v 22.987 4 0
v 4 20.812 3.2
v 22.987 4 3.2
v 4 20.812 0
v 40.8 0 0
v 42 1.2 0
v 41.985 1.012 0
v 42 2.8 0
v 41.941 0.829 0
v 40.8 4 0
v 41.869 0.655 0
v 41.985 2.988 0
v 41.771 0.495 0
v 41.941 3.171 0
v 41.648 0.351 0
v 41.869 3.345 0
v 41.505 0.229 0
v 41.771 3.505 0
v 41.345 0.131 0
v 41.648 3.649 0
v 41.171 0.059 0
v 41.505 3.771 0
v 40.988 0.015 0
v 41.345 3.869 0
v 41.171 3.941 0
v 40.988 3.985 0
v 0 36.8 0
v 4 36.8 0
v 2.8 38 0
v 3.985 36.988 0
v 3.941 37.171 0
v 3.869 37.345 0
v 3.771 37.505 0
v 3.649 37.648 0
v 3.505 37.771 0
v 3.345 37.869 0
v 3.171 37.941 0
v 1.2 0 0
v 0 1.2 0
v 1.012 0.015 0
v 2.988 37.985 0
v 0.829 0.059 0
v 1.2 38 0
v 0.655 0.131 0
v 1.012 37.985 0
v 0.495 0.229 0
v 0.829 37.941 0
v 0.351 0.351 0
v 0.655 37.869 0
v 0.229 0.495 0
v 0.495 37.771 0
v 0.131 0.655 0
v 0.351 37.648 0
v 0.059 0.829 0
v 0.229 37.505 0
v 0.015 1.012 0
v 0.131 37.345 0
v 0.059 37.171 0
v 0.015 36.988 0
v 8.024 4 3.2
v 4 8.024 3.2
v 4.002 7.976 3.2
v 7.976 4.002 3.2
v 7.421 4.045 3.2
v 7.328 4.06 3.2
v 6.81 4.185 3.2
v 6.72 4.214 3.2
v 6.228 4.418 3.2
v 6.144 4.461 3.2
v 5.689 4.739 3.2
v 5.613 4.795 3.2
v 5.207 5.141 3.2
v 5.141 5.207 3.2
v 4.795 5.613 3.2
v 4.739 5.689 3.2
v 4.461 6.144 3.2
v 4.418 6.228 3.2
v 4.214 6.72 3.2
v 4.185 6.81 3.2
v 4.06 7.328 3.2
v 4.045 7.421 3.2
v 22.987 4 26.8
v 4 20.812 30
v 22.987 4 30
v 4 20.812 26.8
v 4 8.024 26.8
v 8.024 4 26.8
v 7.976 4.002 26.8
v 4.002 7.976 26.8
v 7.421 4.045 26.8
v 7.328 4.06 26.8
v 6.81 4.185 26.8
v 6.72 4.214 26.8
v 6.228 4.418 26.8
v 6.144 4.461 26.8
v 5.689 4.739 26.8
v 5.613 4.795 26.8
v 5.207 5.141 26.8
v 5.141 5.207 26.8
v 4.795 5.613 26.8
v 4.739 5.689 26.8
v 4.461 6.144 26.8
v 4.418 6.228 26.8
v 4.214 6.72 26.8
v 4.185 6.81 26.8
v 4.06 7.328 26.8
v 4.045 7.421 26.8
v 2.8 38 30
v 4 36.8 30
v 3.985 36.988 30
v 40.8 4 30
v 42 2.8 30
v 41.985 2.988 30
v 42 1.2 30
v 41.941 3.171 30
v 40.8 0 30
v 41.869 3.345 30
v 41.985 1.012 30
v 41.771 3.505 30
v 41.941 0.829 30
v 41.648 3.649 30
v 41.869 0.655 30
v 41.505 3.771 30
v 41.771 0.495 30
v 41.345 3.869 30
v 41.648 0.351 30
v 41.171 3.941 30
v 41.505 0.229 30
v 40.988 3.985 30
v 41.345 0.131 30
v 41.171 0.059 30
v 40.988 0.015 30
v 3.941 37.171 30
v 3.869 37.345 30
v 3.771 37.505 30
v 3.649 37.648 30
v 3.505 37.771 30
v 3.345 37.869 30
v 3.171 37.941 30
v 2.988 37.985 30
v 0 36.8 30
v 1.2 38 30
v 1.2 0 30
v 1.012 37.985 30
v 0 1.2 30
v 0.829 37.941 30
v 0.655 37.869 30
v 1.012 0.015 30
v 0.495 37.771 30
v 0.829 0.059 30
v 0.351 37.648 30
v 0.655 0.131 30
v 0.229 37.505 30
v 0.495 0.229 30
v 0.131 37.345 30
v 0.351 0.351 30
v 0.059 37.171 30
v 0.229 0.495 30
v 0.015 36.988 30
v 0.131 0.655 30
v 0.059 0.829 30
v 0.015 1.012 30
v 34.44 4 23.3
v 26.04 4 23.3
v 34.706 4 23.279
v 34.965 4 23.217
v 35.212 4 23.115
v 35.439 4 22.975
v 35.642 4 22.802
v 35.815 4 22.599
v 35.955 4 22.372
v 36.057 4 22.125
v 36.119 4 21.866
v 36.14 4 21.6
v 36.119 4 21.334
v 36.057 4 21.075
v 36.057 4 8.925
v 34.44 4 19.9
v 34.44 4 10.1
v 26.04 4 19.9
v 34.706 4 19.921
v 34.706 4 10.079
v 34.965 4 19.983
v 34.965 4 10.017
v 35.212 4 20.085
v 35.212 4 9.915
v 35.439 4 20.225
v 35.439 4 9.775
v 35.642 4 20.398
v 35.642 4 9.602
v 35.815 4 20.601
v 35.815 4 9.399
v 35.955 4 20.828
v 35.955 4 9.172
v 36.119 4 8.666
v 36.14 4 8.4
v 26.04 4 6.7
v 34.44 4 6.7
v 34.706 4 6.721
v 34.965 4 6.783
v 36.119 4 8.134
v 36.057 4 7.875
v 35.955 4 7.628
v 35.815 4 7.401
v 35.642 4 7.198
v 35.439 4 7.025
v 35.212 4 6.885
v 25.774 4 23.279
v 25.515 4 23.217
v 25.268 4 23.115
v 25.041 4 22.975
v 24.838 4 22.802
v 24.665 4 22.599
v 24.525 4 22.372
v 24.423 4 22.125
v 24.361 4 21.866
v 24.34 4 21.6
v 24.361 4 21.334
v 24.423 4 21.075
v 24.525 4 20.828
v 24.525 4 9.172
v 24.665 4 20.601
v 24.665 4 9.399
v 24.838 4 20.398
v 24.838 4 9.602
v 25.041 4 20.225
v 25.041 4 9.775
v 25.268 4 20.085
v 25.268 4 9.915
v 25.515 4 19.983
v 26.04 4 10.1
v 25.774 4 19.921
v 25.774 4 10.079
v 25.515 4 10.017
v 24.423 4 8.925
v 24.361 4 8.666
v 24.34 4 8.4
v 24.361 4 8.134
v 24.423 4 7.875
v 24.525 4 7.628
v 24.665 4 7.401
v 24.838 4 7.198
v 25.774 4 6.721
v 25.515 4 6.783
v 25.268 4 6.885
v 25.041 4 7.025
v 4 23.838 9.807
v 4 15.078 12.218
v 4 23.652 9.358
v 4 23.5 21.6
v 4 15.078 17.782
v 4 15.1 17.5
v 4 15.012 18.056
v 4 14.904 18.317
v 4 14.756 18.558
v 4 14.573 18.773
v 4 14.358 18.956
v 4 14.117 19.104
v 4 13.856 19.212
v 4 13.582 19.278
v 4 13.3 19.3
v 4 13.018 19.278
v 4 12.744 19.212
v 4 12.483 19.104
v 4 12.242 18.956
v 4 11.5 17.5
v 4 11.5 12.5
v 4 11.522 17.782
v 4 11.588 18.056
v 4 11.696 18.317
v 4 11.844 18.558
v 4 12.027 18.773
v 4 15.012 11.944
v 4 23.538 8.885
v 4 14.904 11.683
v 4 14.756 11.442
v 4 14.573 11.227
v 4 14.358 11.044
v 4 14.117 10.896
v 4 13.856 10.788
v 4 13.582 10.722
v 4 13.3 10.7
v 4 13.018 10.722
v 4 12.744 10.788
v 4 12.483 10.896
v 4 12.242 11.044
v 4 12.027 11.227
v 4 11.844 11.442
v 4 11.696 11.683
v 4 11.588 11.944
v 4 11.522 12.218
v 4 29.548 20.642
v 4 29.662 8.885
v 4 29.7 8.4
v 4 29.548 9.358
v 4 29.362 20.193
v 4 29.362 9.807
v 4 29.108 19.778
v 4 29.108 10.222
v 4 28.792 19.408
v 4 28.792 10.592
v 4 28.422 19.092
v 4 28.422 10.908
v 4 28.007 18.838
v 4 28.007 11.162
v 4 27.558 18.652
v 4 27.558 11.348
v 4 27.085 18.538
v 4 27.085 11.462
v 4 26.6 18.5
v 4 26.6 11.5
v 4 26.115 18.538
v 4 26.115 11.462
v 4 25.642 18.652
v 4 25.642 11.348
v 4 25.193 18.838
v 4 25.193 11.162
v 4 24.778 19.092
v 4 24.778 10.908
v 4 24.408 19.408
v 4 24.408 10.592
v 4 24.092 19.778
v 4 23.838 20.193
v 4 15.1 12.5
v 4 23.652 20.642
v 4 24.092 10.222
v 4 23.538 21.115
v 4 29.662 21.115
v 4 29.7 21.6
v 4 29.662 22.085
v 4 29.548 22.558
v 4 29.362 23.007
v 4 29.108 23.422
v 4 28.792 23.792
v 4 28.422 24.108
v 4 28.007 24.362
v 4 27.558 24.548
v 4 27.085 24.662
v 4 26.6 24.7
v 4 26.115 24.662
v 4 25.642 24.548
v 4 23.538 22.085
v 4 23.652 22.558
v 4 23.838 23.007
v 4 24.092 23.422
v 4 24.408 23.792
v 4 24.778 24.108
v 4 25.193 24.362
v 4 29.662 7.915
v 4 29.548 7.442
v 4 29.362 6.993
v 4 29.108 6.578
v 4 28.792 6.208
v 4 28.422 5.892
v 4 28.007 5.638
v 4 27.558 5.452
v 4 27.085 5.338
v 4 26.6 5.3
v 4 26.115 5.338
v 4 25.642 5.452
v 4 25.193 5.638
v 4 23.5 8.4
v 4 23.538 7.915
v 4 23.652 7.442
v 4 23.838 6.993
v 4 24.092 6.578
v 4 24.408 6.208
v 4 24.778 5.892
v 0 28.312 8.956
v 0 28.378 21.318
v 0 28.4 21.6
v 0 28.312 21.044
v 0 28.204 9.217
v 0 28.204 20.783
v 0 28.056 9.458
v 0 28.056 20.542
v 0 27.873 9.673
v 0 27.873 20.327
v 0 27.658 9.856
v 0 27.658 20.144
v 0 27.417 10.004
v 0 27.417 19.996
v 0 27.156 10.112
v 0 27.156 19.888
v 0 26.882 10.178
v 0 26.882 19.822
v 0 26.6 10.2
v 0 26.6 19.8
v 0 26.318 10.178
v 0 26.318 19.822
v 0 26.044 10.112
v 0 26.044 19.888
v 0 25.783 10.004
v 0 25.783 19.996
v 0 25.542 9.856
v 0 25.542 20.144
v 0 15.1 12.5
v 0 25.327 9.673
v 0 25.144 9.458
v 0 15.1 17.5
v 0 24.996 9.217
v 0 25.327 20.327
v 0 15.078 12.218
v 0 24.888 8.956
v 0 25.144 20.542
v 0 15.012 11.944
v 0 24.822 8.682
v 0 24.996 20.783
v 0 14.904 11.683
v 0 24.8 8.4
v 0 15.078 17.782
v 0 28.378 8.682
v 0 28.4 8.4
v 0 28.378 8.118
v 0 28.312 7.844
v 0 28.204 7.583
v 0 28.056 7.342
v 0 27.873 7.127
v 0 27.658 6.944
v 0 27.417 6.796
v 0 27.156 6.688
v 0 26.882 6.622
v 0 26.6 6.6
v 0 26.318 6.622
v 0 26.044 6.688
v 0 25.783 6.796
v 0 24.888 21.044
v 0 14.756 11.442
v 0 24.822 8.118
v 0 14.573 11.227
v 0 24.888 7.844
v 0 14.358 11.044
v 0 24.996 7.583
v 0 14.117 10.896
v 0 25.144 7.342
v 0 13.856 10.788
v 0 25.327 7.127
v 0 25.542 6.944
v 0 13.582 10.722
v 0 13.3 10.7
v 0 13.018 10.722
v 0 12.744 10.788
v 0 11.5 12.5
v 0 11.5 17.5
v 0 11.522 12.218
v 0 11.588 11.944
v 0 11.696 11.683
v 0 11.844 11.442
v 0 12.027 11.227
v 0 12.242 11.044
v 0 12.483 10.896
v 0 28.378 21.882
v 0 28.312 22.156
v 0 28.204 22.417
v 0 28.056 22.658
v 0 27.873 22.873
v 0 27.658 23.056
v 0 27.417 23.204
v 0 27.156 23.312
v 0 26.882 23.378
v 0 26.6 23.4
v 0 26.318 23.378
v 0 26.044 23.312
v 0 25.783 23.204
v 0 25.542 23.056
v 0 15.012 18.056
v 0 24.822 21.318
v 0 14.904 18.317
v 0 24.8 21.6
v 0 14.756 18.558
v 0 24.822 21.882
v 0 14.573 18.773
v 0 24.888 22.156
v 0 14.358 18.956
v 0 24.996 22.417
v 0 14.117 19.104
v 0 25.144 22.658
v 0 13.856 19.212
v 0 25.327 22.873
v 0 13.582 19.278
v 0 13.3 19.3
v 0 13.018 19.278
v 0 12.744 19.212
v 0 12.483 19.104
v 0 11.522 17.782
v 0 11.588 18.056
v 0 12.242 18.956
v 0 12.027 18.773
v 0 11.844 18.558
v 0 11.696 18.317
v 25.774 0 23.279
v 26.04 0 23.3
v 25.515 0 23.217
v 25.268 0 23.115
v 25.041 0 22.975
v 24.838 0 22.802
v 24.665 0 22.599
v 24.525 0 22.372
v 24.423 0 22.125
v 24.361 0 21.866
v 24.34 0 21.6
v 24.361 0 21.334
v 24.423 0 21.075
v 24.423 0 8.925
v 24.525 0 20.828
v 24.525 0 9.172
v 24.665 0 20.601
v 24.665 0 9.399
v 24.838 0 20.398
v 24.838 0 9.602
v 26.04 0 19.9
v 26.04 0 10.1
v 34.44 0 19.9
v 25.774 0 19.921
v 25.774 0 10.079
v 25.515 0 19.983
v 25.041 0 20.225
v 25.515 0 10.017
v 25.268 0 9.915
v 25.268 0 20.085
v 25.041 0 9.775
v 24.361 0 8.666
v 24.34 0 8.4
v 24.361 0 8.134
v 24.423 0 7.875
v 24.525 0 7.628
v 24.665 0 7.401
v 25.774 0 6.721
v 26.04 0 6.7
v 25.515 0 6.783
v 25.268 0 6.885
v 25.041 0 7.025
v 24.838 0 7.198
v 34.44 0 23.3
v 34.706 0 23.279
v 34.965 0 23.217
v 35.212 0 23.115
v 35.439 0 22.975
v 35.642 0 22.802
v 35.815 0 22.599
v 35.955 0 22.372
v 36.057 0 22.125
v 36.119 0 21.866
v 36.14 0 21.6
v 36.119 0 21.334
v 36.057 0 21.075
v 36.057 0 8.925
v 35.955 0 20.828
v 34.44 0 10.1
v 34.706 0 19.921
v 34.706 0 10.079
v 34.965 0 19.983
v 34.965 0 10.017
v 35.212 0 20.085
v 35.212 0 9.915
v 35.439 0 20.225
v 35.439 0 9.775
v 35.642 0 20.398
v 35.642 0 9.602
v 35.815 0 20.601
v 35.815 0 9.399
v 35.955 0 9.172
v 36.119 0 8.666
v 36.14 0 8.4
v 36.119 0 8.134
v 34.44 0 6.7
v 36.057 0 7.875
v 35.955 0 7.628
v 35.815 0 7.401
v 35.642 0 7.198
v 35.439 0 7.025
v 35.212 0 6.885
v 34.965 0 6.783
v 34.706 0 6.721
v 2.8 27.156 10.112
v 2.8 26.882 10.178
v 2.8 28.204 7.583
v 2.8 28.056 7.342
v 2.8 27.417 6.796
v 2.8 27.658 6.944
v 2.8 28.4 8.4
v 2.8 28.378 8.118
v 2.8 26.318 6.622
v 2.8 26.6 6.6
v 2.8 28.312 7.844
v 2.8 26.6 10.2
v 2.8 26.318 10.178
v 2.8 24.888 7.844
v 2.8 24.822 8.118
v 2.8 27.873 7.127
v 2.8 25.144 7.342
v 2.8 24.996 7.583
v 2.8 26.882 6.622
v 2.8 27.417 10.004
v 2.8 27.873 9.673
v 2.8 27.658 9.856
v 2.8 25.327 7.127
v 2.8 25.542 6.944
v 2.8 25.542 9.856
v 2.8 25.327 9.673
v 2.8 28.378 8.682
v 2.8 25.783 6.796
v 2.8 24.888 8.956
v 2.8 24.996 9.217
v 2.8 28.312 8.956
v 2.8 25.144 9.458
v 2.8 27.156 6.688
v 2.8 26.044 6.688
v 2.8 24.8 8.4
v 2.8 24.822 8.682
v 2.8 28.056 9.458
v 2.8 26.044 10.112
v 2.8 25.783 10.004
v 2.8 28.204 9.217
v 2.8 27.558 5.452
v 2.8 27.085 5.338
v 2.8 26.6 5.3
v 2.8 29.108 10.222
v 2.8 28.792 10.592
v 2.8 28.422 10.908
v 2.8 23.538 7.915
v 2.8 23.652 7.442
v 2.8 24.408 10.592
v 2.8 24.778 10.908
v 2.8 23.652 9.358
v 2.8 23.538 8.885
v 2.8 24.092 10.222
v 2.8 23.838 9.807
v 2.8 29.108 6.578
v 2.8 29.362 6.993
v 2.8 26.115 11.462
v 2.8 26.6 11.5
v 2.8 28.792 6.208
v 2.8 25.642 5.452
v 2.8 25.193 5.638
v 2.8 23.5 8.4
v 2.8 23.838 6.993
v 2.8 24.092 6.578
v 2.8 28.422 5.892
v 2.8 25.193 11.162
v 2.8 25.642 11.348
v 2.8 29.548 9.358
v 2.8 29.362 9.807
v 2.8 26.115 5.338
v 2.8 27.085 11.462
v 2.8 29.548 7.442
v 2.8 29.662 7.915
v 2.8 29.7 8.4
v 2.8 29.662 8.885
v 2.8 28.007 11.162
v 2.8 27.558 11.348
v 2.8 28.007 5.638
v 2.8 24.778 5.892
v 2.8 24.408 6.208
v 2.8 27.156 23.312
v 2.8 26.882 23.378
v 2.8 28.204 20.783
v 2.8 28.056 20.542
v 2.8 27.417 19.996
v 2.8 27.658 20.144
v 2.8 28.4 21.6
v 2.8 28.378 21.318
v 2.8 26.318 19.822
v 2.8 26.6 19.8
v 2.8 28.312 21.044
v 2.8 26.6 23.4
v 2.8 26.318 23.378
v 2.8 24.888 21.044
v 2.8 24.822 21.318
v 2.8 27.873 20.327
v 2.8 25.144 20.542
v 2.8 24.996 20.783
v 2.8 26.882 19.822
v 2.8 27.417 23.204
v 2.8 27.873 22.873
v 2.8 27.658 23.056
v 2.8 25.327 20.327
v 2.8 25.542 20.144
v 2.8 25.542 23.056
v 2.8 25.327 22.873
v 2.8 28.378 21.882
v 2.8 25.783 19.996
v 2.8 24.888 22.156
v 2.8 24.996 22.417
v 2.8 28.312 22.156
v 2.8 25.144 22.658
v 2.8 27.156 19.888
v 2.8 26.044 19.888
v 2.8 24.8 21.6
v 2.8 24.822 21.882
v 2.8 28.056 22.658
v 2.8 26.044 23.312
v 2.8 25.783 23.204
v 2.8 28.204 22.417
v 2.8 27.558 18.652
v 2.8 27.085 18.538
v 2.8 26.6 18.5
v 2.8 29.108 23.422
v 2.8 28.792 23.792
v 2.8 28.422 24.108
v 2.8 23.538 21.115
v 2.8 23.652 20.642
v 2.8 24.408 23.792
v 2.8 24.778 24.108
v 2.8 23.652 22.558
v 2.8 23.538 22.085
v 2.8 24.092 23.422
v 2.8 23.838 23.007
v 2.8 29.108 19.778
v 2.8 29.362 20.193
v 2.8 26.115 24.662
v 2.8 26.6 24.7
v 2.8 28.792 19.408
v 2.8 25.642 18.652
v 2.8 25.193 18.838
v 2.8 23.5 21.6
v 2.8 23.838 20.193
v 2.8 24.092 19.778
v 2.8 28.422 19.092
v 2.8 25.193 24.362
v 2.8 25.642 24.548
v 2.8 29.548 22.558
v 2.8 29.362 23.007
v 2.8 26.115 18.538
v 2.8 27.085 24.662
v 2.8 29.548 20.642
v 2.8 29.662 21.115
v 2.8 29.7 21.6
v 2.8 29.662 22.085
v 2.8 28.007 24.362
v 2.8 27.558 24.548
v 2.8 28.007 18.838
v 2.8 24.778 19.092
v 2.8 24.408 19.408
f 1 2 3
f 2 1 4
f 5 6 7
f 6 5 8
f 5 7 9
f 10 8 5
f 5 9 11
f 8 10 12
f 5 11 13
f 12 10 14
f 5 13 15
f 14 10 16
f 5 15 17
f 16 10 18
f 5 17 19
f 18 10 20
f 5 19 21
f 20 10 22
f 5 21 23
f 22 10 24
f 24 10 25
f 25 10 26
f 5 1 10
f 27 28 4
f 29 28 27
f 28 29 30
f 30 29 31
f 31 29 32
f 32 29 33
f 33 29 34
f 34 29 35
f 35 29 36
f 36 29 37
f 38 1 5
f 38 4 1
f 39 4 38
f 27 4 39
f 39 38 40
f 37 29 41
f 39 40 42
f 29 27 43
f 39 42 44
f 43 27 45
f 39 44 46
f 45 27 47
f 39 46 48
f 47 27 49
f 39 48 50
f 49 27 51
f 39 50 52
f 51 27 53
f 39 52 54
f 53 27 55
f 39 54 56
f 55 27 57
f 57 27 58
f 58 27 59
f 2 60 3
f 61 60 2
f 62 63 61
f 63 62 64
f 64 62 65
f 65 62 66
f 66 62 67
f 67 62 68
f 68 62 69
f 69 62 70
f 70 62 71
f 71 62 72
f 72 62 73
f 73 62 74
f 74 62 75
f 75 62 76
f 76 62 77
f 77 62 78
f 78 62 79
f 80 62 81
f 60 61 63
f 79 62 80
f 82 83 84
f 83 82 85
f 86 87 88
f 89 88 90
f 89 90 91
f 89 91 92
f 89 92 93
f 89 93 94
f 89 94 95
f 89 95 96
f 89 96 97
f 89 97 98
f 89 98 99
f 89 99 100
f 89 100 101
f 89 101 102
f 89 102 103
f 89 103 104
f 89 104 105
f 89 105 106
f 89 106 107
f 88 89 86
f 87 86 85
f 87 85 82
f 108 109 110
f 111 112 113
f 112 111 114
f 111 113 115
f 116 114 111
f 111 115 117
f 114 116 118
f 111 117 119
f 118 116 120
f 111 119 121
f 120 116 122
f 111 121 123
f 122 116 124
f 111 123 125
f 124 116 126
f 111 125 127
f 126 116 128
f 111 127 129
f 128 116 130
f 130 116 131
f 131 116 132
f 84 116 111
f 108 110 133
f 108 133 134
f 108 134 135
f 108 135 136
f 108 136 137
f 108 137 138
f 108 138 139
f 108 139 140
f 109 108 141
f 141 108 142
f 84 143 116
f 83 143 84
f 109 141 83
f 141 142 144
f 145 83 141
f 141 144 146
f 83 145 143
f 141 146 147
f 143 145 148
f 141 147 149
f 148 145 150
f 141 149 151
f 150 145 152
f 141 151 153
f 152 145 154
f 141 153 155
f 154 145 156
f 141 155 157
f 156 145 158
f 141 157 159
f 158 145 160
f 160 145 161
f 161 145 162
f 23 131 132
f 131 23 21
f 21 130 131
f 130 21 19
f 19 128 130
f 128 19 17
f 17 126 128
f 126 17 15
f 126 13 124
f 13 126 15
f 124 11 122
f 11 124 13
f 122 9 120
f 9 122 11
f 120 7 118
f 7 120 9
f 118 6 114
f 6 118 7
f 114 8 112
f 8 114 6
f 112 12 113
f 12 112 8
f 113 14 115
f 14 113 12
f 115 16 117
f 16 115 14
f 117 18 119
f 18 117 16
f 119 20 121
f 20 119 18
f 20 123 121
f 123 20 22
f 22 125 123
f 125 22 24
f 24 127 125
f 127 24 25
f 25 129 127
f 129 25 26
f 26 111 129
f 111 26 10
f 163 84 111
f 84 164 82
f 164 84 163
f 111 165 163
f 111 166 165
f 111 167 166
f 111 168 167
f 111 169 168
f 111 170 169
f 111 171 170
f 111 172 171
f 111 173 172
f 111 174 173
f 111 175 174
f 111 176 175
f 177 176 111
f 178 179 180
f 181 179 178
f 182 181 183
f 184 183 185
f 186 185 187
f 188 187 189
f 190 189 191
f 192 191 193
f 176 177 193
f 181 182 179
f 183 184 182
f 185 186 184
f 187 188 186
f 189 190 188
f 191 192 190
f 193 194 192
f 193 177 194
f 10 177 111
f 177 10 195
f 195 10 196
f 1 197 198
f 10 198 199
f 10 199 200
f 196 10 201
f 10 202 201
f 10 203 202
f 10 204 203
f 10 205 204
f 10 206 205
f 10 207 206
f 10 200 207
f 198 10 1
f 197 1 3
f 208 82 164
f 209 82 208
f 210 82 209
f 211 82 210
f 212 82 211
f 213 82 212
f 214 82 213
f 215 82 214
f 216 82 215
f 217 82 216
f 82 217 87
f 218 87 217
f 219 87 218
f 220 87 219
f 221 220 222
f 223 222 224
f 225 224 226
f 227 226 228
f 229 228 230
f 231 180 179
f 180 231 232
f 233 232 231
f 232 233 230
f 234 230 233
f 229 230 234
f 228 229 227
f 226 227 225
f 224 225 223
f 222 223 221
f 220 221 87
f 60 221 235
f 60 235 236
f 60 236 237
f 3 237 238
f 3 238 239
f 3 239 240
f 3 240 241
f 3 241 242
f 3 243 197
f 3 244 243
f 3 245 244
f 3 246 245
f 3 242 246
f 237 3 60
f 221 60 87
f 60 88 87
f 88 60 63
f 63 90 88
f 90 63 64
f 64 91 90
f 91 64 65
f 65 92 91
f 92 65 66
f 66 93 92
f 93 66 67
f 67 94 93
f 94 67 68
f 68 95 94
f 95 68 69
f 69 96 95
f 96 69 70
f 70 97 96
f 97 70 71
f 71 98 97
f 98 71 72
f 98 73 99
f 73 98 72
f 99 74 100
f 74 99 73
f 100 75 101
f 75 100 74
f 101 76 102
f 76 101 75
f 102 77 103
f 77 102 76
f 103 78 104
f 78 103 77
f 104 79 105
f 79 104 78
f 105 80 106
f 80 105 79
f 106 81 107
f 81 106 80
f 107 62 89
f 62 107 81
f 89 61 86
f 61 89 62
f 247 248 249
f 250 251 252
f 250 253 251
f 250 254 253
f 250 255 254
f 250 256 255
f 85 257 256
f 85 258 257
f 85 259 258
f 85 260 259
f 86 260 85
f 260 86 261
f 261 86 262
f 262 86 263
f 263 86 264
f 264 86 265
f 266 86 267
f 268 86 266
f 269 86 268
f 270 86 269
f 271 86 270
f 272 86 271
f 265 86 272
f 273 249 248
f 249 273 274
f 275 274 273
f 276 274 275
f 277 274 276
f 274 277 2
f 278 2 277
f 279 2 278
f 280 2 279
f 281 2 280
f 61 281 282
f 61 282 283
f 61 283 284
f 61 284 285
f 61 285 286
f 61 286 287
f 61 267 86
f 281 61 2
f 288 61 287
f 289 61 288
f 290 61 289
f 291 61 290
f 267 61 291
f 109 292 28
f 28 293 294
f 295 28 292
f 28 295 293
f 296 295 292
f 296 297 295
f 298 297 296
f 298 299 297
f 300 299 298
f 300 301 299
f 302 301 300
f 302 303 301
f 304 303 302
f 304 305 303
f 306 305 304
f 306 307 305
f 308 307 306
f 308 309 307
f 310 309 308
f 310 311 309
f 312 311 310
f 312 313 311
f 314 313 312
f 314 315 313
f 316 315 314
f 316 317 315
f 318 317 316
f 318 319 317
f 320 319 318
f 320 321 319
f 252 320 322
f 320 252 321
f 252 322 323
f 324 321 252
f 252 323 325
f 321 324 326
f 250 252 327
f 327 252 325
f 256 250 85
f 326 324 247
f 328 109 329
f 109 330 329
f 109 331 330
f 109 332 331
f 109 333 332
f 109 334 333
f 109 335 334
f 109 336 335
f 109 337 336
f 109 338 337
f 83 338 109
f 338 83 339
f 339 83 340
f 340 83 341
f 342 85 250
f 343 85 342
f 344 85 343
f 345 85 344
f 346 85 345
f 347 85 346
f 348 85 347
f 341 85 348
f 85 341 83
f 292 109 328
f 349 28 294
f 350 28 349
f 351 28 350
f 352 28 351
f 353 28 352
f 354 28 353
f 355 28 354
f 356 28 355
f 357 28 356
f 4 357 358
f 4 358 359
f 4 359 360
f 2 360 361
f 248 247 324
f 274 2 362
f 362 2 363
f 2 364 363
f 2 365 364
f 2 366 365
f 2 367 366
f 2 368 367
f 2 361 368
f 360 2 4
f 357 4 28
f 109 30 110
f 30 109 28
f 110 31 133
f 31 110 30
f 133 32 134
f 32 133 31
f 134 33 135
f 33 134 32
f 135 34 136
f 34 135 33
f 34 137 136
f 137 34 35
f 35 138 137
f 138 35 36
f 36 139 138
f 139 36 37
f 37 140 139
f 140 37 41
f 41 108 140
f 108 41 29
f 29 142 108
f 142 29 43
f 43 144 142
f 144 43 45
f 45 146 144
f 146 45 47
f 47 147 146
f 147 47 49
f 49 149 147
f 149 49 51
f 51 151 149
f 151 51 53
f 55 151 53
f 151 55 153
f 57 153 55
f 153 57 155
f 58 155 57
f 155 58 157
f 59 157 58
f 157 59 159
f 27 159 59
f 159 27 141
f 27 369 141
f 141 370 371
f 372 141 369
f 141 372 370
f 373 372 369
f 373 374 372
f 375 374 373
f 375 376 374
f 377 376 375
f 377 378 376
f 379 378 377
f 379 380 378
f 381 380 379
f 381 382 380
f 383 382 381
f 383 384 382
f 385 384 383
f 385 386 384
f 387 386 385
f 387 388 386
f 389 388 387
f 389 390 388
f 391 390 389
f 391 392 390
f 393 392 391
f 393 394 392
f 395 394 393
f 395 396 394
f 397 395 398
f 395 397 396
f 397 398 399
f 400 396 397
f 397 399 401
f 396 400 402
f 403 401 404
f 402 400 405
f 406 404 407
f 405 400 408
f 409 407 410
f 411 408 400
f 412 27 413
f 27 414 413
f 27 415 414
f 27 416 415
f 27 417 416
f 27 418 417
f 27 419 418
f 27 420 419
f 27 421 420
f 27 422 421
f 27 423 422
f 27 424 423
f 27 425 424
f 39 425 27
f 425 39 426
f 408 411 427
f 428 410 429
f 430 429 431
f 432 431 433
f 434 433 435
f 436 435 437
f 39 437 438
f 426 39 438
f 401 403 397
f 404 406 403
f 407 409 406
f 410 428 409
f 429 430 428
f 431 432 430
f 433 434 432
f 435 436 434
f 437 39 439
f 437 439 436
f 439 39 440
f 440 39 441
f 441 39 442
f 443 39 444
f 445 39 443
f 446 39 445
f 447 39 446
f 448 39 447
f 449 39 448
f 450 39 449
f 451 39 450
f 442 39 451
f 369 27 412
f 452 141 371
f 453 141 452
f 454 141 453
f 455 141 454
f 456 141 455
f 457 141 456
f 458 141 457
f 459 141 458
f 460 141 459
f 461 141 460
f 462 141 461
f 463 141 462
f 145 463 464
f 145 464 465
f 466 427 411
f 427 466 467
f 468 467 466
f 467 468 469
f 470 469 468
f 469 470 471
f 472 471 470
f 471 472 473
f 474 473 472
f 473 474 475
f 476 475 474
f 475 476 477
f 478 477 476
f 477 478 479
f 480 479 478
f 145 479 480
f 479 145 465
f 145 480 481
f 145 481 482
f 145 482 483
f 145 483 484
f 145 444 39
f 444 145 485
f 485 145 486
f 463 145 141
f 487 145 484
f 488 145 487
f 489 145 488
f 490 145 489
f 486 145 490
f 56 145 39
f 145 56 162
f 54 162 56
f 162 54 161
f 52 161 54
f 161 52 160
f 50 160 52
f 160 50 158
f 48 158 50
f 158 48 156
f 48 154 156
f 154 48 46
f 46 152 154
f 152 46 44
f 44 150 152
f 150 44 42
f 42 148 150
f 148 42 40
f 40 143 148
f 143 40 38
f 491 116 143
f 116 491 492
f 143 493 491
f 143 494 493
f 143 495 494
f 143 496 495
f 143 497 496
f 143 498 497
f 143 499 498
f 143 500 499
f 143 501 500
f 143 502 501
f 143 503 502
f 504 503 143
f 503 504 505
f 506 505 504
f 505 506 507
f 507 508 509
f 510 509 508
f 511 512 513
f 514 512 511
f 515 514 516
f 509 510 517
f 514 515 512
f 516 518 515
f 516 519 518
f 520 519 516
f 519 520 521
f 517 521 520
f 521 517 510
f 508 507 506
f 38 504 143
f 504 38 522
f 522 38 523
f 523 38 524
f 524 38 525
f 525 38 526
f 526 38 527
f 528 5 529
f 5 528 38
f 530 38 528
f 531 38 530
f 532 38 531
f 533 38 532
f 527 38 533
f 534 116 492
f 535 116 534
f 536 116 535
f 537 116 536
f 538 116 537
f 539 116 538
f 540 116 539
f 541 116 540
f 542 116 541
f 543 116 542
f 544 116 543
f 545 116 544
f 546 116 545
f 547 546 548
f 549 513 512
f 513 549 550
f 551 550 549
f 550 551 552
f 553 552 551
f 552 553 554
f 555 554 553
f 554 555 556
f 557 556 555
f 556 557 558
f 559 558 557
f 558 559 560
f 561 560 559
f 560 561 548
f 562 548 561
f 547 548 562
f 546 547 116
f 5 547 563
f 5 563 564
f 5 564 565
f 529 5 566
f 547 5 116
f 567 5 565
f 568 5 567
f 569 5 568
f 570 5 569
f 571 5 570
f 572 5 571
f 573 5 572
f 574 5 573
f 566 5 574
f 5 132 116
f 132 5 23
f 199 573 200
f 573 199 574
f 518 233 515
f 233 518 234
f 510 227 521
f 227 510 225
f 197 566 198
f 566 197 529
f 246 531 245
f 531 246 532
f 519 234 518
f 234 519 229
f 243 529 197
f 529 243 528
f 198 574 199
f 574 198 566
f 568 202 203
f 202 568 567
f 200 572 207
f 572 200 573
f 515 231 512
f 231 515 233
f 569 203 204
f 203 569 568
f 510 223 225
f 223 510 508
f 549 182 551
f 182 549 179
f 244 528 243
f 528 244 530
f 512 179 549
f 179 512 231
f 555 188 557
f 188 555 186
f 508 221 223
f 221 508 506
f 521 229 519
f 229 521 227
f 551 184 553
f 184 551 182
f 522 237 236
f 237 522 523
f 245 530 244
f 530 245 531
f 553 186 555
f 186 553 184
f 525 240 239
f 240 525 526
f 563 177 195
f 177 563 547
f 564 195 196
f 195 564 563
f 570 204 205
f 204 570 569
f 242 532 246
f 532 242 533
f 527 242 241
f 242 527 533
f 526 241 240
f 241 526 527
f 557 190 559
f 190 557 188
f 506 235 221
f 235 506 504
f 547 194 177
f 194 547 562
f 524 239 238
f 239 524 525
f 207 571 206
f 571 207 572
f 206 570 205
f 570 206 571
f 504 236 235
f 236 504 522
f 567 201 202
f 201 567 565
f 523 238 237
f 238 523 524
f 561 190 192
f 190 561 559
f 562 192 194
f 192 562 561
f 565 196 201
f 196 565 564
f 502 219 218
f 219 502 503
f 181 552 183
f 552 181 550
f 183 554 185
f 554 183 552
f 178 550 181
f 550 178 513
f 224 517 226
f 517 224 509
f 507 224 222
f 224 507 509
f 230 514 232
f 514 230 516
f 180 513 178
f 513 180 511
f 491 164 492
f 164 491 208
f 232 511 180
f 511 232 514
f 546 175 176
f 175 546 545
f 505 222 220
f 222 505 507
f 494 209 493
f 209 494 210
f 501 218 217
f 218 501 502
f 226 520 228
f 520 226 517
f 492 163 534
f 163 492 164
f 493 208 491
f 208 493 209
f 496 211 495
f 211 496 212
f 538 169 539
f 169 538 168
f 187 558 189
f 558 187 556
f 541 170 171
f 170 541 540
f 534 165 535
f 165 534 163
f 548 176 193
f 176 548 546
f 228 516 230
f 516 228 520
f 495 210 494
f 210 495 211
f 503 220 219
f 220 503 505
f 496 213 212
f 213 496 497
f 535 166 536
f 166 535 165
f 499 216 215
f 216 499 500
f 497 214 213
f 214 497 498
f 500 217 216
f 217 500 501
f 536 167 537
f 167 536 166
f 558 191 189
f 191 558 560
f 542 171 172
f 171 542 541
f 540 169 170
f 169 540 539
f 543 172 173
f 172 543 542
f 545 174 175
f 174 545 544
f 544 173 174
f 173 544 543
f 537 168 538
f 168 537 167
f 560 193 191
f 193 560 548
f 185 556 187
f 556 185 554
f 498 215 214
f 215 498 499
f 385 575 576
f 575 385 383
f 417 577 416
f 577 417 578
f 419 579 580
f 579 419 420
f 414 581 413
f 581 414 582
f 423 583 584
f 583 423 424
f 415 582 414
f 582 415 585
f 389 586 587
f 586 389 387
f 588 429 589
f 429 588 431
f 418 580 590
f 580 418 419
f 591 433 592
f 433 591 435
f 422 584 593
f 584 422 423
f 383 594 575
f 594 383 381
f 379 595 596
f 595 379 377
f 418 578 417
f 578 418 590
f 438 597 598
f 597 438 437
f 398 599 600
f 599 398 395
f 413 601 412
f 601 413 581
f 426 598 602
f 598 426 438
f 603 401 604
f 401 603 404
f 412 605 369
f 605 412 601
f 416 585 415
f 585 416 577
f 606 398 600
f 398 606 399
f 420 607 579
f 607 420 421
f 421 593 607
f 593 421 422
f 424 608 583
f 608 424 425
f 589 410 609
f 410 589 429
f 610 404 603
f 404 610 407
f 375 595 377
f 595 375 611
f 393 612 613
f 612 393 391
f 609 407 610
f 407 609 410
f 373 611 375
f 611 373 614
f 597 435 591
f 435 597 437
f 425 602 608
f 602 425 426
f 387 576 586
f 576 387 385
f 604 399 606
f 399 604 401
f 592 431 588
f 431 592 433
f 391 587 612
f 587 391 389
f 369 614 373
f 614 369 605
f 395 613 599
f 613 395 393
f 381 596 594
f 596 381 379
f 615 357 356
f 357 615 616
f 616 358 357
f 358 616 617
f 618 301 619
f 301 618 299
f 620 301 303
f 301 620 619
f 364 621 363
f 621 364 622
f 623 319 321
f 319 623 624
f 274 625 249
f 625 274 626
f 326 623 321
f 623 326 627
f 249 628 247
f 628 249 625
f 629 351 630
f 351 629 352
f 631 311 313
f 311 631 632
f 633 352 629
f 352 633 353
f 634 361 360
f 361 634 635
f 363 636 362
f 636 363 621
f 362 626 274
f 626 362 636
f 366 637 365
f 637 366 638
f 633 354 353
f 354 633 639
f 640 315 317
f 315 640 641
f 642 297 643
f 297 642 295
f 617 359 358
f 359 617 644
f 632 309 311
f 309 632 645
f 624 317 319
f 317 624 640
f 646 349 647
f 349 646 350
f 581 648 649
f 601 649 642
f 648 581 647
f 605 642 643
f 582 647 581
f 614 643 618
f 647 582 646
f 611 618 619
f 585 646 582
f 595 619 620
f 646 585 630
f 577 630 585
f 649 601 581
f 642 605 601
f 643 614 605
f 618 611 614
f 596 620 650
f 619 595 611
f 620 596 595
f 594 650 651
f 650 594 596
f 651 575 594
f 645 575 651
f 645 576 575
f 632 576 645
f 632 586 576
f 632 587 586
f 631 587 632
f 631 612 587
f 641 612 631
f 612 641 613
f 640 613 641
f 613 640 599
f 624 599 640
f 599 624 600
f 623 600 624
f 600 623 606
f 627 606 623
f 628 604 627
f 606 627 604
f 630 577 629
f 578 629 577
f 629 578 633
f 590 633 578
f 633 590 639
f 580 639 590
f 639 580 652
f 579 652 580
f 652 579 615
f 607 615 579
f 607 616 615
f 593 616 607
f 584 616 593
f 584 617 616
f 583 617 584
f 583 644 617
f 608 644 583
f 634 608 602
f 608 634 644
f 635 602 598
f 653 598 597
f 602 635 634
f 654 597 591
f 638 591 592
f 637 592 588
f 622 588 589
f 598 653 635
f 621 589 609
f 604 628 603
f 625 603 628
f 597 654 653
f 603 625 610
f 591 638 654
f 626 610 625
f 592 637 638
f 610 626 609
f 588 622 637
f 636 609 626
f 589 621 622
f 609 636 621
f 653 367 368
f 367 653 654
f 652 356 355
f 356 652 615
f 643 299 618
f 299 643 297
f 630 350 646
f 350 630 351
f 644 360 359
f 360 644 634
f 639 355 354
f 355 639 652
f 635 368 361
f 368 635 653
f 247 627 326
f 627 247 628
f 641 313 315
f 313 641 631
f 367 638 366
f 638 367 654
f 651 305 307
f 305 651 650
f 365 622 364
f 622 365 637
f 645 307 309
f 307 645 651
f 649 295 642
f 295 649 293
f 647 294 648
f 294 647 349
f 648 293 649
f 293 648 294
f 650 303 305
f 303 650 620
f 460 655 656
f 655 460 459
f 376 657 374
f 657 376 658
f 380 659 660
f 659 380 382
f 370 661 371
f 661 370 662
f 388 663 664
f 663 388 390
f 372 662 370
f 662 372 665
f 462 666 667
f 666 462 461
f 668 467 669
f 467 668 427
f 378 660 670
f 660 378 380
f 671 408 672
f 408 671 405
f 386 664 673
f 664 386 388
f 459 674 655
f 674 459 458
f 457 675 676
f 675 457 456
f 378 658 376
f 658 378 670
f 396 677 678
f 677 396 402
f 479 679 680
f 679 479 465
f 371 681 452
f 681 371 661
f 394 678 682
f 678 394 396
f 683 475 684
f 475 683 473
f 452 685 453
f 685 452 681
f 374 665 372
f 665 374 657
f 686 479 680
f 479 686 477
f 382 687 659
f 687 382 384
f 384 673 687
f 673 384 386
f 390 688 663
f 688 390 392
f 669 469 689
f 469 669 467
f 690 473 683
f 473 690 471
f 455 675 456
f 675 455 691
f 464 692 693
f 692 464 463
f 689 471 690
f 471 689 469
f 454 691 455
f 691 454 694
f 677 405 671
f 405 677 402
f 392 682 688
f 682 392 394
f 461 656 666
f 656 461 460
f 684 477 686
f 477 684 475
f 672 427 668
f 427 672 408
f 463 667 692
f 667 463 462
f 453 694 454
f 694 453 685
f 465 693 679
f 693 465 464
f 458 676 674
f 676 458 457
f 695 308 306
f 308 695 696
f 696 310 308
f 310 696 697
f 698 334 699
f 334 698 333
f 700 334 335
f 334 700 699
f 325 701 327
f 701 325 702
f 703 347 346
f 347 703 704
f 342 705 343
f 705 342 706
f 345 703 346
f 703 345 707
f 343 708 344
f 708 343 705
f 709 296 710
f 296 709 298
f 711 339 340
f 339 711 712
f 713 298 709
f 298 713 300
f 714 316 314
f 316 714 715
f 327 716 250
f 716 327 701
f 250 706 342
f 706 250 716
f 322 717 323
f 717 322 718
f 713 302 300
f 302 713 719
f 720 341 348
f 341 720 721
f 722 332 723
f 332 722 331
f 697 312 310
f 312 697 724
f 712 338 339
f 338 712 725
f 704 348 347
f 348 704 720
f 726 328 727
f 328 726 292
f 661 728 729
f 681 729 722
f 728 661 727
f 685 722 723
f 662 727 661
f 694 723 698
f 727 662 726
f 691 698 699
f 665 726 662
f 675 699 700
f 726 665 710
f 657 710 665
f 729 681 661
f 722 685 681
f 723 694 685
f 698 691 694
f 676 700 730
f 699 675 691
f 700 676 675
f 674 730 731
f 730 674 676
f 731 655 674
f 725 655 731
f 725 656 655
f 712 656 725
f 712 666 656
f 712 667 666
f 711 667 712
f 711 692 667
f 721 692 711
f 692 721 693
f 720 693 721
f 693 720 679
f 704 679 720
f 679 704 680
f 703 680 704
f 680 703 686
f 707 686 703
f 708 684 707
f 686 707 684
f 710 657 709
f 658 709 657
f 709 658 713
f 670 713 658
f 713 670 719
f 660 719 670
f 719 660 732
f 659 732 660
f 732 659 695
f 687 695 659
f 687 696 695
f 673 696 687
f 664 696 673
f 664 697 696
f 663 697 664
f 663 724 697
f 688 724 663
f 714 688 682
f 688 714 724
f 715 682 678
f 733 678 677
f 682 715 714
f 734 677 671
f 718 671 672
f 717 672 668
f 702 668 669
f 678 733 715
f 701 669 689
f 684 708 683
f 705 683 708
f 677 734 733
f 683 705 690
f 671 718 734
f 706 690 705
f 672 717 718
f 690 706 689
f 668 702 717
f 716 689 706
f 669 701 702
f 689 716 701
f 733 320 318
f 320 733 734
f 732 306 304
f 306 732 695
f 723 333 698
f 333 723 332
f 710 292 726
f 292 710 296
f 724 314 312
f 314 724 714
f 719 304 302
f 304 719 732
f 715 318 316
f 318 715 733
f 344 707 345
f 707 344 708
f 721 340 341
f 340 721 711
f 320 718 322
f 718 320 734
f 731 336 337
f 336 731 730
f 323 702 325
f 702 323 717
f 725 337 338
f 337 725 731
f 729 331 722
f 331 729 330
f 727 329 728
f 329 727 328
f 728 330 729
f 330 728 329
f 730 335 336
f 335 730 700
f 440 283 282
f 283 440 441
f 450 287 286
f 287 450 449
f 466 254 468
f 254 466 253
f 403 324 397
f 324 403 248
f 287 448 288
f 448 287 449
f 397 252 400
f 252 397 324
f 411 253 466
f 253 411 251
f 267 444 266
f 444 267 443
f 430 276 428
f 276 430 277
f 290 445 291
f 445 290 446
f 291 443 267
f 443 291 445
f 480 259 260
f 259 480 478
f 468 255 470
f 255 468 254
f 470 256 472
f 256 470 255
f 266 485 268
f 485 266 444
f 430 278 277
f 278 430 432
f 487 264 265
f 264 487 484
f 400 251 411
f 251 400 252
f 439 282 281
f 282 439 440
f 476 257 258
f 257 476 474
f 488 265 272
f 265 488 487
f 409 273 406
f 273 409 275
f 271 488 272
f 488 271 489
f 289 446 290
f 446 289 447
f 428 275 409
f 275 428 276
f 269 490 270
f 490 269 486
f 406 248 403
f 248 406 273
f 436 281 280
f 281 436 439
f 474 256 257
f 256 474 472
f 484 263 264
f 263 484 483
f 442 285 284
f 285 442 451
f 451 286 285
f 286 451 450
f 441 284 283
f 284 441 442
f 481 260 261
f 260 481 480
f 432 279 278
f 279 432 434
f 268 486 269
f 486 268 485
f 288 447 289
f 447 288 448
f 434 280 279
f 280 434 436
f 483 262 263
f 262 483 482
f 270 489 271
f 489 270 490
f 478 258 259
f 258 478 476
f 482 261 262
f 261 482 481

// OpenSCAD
// PRT-06: Reservoir Side-Mount L-Bracket
// Mounts controller enclosure to the side wall of the reservoir.

$fn = 40;

// Top-level parametric parameters
legA_length = 42.0;      // X dimension (mm)
legB_length = 38.0;      // Y dimension (mm)
bracket_width = 30.0;    // Z dimension (mm)
wall_thickness = 4.0;    // Structural thickness >= 1.6mm
fillet_radius = 4.0;     // Inner corner fillet radius
m3_hole_d = 3.4;         // M3 screw clearance hole diameter
m3_head_d = 6.2;         // M3 socket head counterbore
tolerance = 0.2;         // Mating interface clearance
gusset_thickness = 3.2;  // Side reinforcement rib thickness

module part_controller_bracket(
    legA = legA_length,
    legB = legB_length,
    width = bracket_width,
    thickness = wall_thickness,
    filletR = fillet_radius,
    hole_d = m3_hole_d,
    gusset_t = gusset_thickness,
    tol = tolerance
) {
    difference() {
        union() {
            // Main L-Bracket body extruded along Z (width = 30mm)
            linear_extrude(height = width) {
                // Rounded L-profile using 2D offset for fast CGAL rendering
                offset(r = 1.2) offset(r = -1.2) {
                    union() {
                        // Leg A along X
                        square([legA, thickness]);
                        // Leg B along Y
                        square([thickness, legB]);
                        // Inner corner fillet reinforcement
                        translate([thickness, thickness])
                            difference() {
                                square([filletR, filletR]);
                                translate([filletR, filletR])
                                    circle(r = filletR);
                            }
                    }
                }
            }

            // Dual edge stiffening gussets along Z = 0 and Z = width - gusset_t
            for (z_pos = [0, width - gusset_t]) {
                translate([0, 0, z_pos])
                    linear_extrude(height = gusset_t)
                        polygon(points = [
                            [thickness - 0.1, thickness - 0.1],
                            [legA * 0.55, thickness - 0.1],
                            [thickness - 0.1, legB * 0.55]
                        ]);
            }
        }

        // Leg A Mounting Slots (M3 clearance for controller enclosure adjustment)
        for (z_pos = [width * 0.28, width * 0.72]) {
            translate([0, 0, z_pos])
                rotate([-90, 0, 0])
                    hull() {
                        translate([legA * 0.62, 0, -1])
                            cylinder(d = hole_d, h = thickness + 2);
                        translate([legA * 0.82, 0, -1])
                            cylinder(d = hole_d, h = thickness + 2);
                    }
        }

        // Leg B Mounting Holes (M3 clearance + counterbore for reservoir side wall)
        for (z_pos = [width * 0.28, width * 0.72]) {
            translate([0, legB * 0.70, z_pos])
                rotate([0, 90, 0]) {
                    // Through hole
                    translate([0, 0, -1])
                        cylinder(d = hole_d + tol, h = thickness + 2);
                    // Shallow recess on inside face
                    translate([0, 0, thickness - 1.2])
                        cylinder(d = m3_head_d, h = 2.0);
                }
        }

        // Center cable/zip-tie pass-through slot on Leg B
        translate([-1, legB * 0.35, width * 0.5])
            rotate([0, 90, 0])
                hull() {
                    translate([-2.5, 0, 0])
                        cylinder(d = 3.6, h = thickness + 2);
                    translate([2.5, 0, 0])
                        cylinder(d = 3.6, h = thickness + 2);
                }
    }
}

// Render the part
part_controller_bracket();
